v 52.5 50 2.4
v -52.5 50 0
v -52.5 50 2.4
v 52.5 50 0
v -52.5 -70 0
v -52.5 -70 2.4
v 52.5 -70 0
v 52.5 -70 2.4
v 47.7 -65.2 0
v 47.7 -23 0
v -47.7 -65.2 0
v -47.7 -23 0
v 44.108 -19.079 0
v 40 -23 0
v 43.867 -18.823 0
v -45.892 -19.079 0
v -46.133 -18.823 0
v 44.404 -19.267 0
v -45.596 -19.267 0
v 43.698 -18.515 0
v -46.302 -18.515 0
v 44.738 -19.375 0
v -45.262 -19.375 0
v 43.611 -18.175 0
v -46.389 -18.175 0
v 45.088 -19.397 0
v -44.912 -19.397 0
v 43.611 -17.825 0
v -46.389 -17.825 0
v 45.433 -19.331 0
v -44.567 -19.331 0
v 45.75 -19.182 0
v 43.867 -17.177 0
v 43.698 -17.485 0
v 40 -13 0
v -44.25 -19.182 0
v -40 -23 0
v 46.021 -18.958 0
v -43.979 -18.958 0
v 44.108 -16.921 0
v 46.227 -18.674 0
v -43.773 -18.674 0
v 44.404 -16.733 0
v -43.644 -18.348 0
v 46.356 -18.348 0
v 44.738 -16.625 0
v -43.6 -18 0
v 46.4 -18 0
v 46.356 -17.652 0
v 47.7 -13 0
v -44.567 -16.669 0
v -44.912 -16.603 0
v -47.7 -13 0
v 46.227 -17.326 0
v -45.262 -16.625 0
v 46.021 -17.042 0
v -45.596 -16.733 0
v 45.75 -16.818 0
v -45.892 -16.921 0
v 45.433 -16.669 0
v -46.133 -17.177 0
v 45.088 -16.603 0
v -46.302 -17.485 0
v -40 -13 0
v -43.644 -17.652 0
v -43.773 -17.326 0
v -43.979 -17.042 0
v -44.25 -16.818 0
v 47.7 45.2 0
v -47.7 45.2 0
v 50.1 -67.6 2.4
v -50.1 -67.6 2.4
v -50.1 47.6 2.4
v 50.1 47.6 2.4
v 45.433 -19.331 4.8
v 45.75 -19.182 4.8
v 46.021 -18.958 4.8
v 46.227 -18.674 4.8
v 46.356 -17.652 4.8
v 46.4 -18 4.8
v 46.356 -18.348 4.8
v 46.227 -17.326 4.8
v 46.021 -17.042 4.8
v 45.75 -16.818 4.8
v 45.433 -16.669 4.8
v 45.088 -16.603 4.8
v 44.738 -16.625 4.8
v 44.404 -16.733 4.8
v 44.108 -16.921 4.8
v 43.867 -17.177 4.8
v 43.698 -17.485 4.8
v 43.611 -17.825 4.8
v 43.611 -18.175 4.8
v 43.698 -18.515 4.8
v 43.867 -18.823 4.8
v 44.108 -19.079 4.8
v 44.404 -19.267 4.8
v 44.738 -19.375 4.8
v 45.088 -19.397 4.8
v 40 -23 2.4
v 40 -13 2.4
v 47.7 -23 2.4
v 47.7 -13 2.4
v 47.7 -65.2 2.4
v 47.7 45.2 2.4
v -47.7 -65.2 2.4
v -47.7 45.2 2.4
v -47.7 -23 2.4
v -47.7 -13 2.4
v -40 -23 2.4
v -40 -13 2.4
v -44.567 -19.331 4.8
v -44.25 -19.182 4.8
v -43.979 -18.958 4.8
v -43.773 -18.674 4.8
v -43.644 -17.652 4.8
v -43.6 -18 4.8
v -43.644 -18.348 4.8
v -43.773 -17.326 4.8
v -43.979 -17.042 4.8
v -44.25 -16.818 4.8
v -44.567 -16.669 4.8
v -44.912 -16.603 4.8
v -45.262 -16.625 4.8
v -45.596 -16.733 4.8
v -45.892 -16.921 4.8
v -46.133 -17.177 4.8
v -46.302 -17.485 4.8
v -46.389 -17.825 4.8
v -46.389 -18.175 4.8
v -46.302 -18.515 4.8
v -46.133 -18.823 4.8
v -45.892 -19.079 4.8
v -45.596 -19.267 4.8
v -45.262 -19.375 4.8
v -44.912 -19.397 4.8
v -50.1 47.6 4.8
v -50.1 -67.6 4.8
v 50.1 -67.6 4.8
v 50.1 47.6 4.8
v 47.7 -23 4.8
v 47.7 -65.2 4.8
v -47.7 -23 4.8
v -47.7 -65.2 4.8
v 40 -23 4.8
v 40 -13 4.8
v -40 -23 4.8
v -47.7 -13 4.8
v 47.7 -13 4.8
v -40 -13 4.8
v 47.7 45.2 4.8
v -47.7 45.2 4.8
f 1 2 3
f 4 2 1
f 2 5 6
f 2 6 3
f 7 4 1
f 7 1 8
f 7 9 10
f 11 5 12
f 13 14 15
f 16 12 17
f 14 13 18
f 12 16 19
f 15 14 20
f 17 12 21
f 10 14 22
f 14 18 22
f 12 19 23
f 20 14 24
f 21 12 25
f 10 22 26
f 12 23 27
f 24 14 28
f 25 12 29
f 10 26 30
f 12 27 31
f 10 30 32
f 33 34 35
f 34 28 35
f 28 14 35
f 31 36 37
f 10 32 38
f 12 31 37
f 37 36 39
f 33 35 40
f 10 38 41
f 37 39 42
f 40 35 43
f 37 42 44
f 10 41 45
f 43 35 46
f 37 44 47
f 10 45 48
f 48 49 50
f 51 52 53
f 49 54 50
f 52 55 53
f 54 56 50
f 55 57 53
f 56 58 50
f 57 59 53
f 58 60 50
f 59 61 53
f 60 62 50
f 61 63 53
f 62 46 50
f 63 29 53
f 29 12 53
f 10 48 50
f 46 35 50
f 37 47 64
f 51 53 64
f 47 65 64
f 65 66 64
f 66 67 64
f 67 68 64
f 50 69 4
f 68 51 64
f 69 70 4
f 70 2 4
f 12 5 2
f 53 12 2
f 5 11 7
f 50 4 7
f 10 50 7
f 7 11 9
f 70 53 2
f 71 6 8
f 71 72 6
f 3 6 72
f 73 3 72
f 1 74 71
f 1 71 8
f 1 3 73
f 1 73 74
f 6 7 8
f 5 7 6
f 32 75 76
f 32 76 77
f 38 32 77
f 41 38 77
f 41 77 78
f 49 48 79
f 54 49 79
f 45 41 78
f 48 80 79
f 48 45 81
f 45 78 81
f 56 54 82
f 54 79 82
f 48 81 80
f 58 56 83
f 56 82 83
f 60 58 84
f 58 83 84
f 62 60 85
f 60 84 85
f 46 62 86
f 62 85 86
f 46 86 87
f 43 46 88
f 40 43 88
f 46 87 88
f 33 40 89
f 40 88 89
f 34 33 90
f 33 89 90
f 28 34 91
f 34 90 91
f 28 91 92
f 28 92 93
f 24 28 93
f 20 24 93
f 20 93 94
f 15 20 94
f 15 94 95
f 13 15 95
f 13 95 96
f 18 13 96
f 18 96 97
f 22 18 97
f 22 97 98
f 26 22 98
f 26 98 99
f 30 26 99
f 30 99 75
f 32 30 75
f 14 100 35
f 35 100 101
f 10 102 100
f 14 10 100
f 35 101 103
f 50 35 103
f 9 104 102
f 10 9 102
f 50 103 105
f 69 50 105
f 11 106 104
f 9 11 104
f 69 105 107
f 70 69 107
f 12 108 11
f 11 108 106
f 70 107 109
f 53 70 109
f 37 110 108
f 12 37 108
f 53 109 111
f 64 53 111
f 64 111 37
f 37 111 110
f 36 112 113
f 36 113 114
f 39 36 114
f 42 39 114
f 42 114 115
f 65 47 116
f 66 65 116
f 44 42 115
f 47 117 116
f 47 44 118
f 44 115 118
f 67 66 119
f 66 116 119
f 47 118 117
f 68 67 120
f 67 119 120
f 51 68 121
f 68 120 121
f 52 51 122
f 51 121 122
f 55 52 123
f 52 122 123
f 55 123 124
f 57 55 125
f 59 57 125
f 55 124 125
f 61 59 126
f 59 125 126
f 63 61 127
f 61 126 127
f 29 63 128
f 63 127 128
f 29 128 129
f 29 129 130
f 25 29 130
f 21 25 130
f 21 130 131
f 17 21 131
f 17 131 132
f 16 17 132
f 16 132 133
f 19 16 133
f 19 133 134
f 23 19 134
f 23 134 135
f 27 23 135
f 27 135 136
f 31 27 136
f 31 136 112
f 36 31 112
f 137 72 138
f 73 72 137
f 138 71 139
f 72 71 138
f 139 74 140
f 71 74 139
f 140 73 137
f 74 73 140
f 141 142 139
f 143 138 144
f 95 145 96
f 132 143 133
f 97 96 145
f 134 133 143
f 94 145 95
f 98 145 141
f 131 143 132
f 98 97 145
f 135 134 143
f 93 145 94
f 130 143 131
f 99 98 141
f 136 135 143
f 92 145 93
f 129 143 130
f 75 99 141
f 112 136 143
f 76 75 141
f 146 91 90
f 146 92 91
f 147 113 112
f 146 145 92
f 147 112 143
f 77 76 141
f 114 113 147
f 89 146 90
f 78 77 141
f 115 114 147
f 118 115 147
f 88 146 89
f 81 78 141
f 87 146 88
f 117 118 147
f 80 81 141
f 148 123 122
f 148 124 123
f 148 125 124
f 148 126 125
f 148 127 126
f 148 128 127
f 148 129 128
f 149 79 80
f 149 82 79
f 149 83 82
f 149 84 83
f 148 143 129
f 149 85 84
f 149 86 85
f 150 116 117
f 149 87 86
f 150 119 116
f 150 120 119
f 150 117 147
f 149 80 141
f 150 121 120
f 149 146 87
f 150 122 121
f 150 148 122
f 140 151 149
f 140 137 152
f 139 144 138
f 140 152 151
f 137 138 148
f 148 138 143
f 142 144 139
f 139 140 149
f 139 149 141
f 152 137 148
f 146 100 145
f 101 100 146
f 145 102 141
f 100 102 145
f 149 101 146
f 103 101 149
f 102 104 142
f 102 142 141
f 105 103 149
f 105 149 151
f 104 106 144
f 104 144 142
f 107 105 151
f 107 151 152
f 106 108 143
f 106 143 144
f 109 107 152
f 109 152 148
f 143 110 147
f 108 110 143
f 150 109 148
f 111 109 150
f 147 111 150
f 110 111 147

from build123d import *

# Parameters (mm, degrees)
SKETCH_W             = 105
SKETCH_H             = 120
PAD_DEPTH            = 2.4
POCKET001_DEPTH      = 2.401
POCKET001_DEPTH_BACK = -0.001
SKETCH026_W          = 100.2
SKETCH026_H          = 115.2
PAD001_DEPTH         = 2.4
SKETCH024_R          = 1.4
POCKET_DEPTH         = 5


with BuildPart() as part:
    # Sketch → Pad (new body)
    with BuildSketch(Plane.XY):
        with Locations((0, -10)):
            Rectangle(SKETCH_W, SKETCH_H)
    extrude(amount=PAD_DEPTH)

    # Sketch025 → Pocket001 (cut, two sides)
    with BuildSketch(Plane.XY.offset(2.4)) as pocket001_sk:
        Polygon((-47.7, 45.2), (-47.7, -13), (-40, -13), (-40, -23), (-47.7, -23), (-47.7, -65.2), (47.7, -65.2), (47.7, -23), (40, -23), (40, -13), (47.7, -13), (47.7, 45.2), align=None)
    extrude(amount=-POCKET001_DEPTH, mode=Mode.SUBTRACT)
    extrude(pocket001_sk.sketch, amount=-POCKET001_DEPTH_BACK, mode=Mode.SUBTRACT)

    # Sketch026 → Pad001 (new body)
    with BuildSketch(Plane.XY.offset(2.4)):
        with Locations((0, -10)):
            Rectangle(SKETCH026_W, SKETCH026_H)
        Polygon((-47.7, 45.2), (-47.7, -13), (-40, -13), (-40, -23), (-47.7, -23), (-47.7, -65.2), (47.7, -65.2), (47.7, -23), (40, -23), (40, -13), (47.7, -13), (47.7, 45.2), align=None, mode=Mode.SUBTRACT)
    extrude(amount=PAD001_DEPTH)

    # Sketch024 → Pocket (cut)
    with BuildSketch(Plane.XY.offset(4.8)):
        with Locations((-45, -18)):
            Circle(SKETCH024_R)
        with Locations((45, -18)):
            Circle(SKETCH024_R)
    extrude(amount=-POCKET_DEPTH, mode=Mode.SUBTRACT)


solid = part.part
